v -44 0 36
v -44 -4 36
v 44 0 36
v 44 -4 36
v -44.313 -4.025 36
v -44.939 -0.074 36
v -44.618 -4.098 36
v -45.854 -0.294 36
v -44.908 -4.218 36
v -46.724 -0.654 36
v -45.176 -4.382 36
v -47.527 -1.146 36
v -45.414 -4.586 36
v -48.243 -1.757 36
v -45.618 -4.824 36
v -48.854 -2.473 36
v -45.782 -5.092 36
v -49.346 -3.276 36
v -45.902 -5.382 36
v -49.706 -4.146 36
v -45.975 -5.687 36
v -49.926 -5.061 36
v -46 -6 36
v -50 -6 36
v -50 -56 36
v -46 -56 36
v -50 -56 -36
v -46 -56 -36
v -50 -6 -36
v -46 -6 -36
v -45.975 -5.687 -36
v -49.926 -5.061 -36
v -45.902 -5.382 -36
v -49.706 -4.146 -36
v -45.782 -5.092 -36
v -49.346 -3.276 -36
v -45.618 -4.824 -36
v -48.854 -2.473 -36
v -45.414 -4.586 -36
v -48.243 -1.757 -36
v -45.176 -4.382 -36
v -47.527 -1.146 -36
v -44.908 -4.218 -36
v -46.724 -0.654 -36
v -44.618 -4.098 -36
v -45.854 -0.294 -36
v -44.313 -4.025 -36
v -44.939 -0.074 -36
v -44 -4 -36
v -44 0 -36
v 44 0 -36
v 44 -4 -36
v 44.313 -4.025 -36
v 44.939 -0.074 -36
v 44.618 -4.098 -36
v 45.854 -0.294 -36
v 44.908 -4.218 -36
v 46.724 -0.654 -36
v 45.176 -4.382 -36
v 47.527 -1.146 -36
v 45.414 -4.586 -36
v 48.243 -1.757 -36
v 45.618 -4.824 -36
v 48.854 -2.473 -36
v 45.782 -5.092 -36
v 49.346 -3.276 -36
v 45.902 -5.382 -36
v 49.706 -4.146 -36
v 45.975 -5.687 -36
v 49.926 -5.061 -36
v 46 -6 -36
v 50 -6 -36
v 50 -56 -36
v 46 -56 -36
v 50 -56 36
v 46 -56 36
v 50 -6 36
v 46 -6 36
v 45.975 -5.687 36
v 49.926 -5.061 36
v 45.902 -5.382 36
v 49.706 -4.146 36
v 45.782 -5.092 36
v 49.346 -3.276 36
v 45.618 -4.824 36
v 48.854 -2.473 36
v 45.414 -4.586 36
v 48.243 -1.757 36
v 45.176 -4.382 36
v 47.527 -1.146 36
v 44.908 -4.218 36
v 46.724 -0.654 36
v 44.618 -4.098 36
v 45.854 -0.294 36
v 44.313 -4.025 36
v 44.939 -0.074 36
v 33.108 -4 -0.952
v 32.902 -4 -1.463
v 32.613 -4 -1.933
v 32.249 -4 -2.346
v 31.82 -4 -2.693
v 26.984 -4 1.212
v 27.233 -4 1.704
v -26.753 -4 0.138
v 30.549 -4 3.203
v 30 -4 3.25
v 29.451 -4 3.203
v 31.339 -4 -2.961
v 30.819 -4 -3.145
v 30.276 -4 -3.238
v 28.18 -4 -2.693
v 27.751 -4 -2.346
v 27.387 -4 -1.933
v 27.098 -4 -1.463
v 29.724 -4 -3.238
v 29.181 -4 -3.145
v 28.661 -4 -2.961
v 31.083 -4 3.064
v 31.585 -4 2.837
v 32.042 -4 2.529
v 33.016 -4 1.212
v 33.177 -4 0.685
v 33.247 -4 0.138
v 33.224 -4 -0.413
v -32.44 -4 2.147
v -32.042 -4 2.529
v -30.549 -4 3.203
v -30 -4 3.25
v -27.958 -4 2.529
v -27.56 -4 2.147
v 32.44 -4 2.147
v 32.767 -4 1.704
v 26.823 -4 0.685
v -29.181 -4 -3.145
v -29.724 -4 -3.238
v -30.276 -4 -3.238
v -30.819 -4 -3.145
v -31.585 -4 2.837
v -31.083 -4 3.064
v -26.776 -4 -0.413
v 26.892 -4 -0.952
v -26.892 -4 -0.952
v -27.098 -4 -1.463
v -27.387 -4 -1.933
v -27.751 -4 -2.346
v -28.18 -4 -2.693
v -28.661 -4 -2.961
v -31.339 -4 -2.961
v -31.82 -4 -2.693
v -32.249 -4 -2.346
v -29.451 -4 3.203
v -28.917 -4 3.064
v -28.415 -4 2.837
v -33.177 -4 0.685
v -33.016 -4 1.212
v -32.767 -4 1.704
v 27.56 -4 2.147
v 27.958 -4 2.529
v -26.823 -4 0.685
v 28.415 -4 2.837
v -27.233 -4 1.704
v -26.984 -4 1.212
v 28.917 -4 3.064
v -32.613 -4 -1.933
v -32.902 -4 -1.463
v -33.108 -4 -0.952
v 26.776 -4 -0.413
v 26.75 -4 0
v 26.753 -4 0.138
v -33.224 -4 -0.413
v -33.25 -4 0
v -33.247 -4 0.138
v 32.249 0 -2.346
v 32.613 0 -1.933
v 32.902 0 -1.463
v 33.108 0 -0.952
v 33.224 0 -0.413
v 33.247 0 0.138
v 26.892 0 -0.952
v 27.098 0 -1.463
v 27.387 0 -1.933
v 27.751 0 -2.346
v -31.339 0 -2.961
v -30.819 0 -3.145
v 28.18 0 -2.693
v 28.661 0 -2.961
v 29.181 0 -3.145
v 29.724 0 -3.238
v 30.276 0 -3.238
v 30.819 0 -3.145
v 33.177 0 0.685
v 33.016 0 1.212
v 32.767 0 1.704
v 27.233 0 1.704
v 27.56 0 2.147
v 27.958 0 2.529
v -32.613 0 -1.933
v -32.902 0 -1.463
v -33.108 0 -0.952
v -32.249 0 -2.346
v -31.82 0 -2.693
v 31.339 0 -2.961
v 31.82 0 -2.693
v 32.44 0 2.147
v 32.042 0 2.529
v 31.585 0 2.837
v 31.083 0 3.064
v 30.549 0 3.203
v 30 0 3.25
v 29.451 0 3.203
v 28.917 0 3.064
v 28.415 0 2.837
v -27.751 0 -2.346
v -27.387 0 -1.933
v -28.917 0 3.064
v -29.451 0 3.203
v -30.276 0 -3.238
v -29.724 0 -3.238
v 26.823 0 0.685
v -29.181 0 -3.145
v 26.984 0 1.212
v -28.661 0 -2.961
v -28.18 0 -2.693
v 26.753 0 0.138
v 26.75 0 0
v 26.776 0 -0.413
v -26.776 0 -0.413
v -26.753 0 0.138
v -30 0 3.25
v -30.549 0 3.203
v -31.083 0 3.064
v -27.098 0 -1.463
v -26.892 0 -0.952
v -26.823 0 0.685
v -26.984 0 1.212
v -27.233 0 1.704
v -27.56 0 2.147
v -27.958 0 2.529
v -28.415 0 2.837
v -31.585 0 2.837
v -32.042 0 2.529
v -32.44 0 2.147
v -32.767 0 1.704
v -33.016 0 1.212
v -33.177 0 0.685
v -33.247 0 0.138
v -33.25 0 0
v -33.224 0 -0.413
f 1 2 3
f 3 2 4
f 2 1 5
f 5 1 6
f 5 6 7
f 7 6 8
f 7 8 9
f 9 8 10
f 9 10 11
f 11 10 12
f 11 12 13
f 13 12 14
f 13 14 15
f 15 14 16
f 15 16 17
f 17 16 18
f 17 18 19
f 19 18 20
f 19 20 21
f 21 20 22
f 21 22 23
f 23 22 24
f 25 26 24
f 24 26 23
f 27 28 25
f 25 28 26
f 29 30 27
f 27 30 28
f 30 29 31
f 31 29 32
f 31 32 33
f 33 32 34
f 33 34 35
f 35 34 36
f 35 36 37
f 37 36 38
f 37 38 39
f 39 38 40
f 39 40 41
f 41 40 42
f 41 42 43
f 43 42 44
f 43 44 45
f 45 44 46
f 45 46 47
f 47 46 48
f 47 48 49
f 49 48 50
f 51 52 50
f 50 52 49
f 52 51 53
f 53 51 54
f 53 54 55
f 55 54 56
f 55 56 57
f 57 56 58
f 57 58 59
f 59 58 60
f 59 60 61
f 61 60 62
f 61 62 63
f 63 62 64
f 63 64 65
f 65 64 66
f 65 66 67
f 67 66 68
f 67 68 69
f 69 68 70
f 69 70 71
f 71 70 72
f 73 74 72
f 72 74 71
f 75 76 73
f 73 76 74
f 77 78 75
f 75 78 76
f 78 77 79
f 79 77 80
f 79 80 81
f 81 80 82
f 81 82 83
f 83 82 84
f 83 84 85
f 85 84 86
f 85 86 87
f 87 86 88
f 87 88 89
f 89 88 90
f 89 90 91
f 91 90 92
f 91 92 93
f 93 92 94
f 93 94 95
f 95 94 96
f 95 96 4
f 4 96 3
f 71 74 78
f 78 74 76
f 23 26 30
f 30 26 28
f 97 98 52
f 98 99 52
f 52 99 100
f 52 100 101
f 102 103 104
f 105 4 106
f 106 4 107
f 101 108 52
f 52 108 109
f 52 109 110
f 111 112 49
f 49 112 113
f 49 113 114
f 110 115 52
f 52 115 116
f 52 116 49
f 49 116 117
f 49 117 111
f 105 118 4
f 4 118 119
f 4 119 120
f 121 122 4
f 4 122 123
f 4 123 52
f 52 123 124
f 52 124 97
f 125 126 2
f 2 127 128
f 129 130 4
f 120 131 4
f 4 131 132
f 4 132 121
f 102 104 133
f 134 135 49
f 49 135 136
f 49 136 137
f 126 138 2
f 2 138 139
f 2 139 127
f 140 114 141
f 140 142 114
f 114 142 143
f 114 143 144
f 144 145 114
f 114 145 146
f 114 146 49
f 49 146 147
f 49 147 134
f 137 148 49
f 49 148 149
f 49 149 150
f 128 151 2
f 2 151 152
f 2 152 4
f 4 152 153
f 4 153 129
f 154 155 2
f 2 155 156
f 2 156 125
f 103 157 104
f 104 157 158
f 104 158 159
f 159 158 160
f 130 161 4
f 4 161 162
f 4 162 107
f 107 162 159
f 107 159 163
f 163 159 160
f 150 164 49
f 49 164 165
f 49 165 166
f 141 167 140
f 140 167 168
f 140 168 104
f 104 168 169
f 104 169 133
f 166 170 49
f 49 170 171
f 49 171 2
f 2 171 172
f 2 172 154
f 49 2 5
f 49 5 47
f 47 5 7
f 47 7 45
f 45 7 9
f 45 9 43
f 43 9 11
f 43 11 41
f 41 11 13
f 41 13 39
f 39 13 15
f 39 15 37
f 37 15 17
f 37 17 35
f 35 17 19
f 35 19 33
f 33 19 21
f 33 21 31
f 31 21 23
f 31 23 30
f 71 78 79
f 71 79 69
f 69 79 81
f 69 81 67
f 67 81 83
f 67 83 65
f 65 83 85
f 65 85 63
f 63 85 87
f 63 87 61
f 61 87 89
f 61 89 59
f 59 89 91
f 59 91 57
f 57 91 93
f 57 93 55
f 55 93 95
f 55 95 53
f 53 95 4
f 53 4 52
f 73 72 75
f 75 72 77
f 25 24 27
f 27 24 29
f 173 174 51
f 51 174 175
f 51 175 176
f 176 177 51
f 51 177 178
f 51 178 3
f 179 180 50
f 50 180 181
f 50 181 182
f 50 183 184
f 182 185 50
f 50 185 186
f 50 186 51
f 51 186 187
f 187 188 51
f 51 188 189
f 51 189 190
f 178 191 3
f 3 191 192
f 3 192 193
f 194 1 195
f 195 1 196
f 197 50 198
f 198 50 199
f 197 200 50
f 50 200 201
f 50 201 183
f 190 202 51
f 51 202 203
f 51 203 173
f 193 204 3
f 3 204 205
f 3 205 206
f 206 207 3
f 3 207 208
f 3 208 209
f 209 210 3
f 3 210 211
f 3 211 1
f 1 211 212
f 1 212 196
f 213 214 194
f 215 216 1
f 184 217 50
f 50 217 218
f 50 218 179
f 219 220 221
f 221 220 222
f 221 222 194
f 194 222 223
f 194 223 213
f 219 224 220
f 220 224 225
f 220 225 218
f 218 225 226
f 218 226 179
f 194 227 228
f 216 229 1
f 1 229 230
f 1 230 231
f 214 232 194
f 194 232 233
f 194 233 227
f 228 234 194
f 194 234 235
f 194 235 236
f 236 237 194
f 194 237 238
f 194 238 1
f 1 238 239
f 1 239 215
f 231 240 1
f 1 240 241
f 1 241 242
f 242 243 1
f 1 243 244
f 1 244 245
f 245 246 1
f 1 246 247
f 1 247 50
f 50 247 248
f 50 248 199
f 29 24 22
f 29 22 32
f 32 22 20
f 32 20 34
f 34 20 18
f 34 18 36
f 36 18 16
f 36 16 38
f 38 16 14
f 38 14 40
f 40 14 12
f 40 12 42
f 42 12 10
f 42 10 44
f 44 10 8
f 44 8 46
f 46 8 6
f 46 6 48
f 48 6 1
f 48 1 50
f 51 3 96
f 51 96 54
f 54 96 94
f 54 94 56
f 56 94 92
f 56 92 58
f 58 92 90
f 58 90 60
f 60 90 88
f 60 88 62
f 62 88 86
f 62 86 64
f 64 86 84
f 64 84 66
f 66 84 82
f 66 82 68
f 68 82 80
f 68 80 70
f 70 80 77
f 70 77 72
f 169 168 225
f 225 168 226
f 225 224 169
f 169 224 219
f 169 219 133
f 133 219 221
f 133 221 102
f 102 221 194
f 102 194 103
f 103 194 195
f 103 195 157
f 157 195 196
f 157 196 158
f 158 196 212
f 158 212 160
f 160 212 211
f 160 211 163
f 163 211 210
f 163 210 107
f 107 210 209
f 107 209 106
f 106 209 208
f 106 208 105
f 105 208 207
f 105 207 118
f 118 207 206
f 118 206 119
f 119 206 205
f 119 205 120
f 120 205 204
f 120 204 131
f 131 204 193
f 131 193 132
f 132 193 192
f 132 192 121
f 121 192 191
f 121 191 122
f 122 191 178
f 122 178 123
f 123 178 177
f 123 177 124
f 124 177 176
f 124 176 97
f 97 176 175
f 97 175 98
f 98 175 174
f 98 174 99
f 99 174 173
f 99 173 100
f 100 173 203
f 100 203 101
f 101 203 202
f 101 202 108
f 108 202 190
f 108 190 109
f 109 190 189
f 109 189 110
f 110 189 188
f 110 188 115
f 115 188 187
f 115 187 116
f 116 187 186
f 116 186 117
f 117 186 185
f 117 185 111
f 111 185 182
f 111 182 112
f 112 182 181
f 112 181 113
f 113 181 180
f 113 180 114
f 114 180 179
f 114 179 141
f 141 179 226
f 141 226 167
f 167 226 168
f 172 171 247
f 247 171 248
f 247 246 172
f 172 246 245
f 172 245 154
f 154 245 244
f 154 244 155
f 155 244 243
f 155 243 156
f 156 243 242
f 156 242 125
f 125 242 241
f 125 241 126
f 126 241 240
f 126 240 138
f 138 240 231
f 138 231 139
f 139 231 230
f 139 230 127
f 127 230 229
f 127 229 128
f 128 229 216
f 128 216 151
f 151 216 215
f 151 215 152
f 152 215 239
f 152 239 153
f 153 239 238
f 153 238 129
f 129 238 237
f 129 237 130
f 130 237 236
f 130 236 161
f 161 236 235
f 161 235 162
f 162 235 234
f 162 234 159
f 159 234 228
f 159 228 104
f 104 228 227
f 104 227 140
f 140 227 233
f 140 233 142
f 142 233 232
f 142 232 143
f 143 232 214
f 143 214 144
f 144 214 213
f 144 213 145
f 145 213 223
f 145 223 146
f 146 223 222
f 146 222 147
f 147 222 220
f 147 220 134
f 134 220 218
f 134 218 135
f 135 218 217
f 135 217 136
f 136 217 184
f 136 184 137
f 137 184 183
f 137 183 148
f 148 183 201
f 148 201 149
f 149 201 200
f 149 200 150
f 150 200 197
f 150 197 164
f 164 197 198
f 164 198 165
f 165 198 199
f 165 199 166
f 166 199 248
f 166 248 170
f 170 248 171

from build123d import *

# Parameters (mm, degrees)
EXTRUDE_THIN1_DEPTH        = 36
CONVERT_SOLID1_START       = -36
CONVERT_SOLID1_DEPTH       = 72
CONVERT_SOLID1_2_DEPTH     = 72
F_6_5_6_5_DIAMETER_HOLE1_D = 6.5
F_6_5_6_5_DIAMETER_HOLE2_D = 6.5


# Read off the part's stored shape, not the designer's step: Convert-Solid1
with BuildPart() as part:
    # Sketch1 → Extrude-Thin1 (new, symmetric)
    with BuildSketch(Plane.XY):
        Polygon((-50, -56), (-50, 0), (50, 0), (50, -56), (46, -56), (46, -4), (-46, -4), (-46, -56), align=None)
    extrude(amount=EXTRUDE_THIN1_DEPTH, both=True)

    # Convert-Solid1 outline → Convert-Solid1 (cut)
    with BuildSketch(Plane.XY.offset(CONVERT_SOLID1_START)):
        with BuildLine():
            Line((50, 0), (44, 0))
            ThreePointArc((44, 0), (48.242640687, -1.757359313), (50, -6))
            Line((50, -6), (50, 0))
        make_face()
        with BuildLine():
            ThreePointArc((-50, -6), (-48.242640687, -1.757359313), (-44, 0))
            Line((-44, 0), (-50, 0))
            Line((-50, 0), (-50, -6))
        make_face()
    extrude(amount=CONVERT_SOLID1_DEPTH, mode=Mode.SUBTRACT)

    # Convert-Solid1 2 outline → Convert-Solid1 2 (add)
    with BuildSketch(Plane.XY.offset(CONVERT_SOLID1_START)):
        with BuildLine():
            Line((46, -4), (44, -4))
            ThreePointArc((44, -4), (45.414213562, -4.585786438), (46, -6))
            Line((46, -6), (46, -4))
        make_face()
        with BuildLine():
            ThreePointArc((-46, -6), (-45.414213562, -4.585786438), (-44, -4))
            Line((-44, -4), (-46, -4))
            Line((-46, -4), (-46, -6))
        make_face()
    extrude(amount=CONVERT_SOLID1_2_DEPTH)

    # Ø6.5 (6.5) Diameter Hole1 (through all)
    with Locations(Plane(origin=(-92.5, 4, 244.5), x_dir=(1, 0, 0), z_dir=(0, 1, 0))):
        with Locations((-122.5, 244.5), (-62.5, 244.5), (62.5, 244.5), (122.5, 244.5)):
            Hole(F_6_5_6_5_DIAMETER_HOLE1_D / 2)

    # Ø6.5 (6.5) Diameter Hole2 (through all)
    with Locations(Plane(origin=(92.5, 4, 244.5), x_dir=(1, 0, 0), z_dir=(0, 1, 0))):
        with Locations((-122.5, 244.5), (-62.5, 244.5), (62.5, 244.5), (122.5, 244.5)):
            Hole(F_6_5_6_5_DIAMETER_HOLE2_D / 2)


solid = part.part
